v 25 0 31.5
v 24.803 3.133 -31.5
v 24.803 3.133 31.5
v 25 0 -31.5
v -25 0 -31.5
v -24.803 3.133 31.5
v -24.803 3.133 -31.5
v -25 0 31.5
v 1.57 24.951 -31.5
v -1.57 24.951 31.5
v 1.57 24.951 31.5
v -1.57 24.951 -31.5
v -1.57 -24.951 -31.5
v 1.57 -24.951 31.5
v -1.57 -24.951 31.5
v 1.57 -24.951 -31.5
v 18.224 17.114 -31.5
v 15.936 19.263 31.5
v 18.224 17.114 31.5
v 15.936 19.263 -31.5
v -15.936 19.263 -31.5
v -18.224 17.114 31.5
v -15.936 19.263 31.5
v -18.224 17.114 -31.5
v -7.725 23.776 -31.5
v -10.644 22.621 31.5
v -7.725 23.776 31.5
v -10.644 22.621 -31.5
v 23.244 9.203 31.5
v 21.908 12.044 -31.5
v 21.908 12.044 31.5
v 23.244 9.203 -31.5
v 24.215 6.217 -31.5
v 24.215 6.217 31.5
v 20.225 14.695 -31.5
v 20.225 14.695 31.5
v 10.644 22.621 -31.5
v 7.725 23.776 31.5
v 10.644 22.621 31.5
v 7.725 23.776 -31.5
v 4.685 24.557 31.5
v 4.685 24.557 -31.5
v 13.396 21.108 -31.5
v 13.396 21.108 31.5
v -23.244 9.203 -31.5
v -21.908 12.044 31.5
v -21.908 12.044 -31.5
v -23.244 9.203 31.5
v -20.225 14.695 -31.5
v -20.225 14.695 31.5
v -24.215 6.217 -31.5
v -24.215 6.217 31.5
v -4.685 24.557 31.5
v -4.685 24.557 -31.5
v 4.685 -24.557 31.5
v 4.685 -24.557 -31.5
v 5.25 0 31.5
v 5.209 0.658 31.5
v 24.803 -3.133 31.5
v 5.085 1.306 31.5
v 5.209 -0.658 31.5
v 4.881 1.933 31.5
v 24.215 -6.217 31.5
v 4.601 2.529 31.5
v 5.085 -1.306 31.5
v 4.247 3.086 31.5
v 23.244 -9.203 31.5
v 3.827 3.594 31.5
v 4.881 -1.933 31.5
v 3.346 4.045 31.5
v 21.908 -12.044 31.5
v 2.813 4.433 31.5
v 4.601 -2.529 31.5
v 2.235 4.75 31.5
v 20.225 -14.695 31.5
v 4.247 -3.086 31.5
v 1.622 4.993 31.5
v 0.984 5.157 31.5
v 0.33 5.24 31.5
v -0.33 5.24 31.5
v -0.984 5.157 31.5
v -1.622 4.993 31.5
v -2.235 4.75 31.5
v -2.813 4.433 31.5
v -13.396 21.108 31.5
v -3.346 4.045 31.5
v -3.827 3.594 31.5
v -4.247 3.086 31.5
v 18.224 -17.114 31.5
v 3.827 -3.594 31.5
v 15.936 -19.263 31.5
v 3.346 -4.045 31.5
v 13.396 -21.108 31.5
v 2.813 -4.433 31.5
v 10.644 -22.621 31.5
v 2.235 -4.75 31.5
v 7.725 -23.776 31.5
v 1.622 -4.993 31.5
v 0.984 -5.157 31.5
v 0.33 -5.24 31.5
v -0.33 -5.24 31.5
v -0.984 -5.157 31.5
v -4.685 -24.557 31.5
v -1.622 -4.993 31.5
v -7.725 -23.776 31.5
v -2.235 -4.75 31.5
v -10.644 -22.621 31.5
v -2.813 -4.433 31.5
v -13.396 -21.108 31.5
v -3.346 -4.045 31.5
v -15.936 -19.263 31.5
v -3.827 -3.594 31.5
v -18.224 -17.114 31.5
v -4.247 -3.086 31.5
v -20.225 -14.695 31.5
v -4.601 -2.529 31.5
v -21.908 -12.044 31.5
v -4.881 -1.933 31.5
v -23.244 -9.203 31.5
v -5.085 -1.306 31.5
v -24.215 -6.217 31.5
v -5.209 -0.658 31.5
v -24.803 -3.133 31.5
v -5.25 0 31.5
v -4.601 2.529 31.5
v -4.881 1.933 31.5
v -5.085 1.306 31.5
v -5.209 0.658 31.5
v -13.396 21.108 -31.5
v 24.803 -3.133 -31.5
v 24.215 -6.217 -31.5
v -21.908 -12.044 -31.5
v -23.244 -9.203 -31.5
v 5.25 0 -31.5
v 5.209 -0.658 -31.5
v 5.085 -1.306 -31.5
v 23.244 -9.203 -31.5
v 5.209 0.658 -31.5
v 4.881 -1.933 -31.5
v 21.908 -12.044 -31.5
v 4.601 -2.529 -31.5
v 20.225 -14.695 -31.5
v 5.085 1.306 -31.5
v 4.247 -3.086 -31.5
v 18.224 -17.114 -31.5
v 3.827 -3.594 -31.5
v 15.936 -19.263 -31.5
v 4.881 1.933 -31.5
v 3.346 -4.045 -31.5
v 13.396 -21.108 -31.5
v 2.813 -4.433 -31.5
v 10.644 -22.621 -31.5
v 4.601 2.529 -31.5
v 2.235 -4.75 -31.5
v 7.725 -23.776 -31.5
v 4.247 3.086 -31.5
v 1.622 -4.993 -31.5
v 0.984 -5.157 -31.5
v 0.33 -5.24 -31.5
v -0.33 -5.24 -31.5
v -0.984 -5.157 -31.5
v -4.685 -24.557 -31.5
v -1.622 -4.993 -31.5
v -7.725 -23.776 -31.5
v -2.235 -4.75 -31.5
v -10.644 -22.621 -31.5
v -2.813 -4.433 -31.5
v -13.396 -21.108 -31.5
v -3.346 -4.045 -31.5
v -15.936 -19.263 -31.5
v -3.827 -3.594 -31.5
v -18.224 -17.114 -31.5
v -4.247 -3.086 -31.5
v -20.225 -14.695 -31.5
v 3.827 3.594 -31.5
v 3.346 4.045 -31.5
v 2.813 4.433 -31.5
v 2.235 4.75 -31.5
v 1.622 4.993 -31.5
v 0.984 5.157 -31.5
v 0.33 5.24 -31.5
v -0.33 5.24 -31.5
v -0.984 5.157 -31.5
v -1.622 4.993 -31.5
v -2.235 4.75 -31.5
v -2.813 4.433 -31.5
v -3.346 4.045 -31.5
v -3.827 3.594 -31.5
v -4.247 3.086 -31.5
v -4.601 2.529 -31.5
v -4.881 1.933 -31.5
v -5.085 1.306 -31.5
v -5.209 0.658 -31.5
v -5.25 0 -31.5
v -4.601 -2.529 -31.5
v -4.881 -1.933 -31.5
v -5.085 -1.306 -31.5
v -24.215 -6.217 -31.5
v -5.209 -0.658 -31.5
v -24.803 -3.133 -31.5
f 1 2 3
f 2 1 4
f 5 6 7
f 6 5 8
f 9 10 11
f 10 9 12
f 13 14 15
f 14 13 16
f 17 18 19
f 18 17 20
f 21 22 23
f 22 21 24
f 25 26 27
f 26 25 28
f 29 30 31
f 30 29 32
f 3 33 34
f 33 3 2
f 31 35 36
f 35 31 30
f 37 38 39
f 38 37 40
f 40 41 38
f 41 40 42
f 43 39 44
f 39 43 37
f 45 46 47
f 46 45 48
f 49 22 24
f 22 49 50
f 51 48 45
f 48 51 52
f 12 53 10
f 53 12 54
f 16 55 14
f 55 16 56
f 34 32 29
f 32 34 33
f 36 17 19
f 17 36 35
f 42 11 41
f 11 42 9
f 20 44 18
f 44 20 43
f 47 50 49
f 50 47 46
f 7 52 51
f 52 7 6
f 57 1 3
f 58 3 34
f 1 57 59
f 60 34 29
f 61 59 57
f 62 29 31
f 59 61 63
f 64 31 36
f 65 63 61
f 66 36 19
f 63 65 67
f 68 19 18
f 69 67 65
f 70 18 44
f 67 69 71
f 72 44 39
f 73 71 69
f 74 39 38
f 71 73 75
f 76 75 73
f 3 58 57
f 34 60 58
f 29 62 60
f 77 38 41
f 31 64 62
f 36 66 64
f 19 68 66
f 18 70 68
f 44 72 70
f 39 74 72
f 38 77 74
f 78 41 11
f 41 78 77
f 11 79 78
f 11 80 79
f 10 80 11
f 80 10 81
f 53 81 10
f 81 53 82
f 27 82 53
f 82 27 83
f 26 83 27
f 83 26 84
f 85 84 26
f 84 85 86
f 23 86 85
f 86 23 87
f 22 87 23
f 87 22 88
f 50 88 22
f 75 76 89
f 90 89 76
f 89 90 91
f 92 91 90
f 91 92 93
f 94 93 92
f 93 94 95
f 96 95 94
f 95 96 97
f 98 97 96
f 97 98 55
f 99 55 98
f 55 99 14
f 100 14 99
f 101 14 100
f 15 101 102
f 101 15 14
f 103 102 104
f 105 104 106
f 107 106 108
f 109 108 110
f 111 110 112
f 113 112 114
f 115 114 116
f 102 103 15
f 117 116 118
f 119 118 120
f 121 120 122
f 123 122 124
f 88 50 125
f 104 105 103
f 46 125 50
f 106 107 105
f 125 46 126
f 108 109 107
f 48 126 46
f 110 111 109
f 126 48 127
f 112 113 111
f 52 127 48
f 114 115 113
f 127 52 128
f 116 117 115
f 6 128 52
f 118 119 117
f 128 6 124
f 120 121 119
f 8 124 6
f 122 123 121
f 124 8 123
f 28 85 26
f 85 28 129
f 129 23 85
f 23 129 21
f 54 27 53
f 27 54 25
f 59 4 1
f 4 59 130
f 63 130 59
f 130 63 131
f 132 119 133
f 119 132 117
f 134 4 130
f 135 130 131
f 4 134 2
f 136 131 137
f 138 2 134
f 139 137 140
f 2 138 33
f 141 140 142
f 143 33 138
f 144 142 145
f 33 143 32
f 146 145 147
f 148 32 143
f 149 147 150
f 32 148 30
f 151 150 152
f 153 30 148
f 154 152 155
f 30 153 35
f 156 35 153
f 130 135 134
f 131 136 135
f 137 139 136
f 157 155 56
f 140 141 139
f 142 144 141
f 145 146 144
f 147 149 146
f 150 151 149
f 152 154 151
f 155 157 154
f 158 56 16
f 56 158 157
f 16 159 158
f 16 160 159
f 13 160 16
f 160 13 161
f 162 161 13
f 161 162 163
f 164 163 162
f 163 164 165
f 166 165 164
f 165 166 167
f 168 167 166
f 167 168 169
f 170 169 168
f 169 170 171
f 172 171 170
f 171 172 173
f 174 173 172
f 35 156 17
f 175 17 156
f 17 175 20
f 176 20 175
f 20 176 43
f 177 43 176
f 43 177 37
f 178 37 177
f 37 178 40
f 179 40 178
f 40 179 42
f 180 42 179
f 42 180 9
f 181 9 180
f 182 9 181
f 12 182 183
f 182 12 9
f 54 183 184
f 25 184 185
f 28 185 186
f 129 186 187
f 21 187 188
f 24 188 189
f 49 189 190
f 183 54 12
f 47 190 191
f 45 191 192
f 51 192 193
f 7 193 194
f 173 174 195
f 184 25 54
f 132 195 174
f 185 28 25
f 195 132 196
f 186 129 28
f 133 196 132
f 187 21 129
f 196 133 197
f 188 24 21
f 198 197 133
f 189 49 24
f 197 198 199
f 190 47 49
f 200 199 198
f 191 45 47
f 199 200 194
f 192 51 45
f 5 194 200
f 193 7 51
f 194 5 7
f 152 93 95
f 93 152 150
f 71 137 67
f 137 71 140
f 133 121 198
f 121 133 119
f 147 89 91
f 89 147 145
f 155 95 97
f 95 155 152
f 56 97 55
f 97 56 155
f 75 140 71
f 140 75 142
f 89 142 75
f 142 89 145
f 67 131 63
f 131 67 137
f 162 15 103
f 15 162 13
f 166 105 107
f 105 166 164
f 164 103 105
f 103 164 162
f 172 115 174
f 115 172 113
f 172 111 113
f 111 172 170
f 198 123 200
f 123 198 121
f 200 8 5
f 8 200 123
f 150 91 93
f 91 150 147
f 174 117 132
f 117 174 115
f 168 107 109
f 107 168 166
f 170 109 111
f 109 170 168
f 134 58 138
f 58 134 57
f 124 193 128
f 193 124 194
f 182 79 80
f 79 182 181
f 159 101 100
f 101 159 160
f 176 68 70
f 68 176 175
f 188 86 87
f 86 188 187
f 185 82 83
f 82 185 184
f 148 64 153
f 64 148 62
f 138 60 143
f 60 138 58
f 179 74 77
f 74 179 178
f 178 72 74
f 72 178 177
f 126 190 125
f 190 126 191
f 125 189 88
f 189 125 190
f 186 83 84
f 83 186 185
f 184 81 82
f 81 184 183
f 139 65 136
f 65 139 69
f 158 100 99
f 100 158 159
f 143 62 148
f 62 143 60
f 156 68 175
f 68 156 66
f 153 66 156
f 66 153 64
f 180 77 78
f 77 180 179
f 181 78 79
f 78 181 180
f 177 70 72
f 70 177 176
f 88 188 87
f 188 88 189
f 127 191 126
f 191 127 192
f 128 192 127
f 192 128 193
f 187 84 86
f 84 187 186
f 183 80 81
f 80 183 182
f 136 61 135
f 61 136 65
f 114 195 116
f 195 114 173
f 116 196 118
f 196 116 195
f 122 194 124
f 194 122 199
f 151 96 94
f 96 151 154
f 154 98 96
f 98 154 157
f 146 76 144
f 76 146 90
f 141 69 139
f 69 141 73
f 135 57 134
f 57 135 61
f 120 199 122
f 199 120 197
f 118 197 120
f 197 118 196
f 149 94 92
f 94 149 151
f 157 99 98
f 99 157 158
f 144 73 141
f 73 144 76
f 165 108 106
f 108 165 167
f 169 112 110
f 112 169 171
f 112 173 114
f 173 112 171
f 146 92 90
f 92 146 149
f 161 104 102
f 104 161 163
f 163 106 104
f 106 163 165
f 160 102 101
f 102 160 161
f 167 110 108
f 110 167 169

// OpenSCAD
$fn = 50;


difference() {
	union() {
		translate(v = [0, 0, -31.5000000000]) {
			cylinder(h = 63, r = 25.0000000000);
		}
	}
	union() {
		translate(v = [0, 0, -100.0000000000]) {
			cylinder(h = 200, r = 5.2500000000);
		}
	}
}
